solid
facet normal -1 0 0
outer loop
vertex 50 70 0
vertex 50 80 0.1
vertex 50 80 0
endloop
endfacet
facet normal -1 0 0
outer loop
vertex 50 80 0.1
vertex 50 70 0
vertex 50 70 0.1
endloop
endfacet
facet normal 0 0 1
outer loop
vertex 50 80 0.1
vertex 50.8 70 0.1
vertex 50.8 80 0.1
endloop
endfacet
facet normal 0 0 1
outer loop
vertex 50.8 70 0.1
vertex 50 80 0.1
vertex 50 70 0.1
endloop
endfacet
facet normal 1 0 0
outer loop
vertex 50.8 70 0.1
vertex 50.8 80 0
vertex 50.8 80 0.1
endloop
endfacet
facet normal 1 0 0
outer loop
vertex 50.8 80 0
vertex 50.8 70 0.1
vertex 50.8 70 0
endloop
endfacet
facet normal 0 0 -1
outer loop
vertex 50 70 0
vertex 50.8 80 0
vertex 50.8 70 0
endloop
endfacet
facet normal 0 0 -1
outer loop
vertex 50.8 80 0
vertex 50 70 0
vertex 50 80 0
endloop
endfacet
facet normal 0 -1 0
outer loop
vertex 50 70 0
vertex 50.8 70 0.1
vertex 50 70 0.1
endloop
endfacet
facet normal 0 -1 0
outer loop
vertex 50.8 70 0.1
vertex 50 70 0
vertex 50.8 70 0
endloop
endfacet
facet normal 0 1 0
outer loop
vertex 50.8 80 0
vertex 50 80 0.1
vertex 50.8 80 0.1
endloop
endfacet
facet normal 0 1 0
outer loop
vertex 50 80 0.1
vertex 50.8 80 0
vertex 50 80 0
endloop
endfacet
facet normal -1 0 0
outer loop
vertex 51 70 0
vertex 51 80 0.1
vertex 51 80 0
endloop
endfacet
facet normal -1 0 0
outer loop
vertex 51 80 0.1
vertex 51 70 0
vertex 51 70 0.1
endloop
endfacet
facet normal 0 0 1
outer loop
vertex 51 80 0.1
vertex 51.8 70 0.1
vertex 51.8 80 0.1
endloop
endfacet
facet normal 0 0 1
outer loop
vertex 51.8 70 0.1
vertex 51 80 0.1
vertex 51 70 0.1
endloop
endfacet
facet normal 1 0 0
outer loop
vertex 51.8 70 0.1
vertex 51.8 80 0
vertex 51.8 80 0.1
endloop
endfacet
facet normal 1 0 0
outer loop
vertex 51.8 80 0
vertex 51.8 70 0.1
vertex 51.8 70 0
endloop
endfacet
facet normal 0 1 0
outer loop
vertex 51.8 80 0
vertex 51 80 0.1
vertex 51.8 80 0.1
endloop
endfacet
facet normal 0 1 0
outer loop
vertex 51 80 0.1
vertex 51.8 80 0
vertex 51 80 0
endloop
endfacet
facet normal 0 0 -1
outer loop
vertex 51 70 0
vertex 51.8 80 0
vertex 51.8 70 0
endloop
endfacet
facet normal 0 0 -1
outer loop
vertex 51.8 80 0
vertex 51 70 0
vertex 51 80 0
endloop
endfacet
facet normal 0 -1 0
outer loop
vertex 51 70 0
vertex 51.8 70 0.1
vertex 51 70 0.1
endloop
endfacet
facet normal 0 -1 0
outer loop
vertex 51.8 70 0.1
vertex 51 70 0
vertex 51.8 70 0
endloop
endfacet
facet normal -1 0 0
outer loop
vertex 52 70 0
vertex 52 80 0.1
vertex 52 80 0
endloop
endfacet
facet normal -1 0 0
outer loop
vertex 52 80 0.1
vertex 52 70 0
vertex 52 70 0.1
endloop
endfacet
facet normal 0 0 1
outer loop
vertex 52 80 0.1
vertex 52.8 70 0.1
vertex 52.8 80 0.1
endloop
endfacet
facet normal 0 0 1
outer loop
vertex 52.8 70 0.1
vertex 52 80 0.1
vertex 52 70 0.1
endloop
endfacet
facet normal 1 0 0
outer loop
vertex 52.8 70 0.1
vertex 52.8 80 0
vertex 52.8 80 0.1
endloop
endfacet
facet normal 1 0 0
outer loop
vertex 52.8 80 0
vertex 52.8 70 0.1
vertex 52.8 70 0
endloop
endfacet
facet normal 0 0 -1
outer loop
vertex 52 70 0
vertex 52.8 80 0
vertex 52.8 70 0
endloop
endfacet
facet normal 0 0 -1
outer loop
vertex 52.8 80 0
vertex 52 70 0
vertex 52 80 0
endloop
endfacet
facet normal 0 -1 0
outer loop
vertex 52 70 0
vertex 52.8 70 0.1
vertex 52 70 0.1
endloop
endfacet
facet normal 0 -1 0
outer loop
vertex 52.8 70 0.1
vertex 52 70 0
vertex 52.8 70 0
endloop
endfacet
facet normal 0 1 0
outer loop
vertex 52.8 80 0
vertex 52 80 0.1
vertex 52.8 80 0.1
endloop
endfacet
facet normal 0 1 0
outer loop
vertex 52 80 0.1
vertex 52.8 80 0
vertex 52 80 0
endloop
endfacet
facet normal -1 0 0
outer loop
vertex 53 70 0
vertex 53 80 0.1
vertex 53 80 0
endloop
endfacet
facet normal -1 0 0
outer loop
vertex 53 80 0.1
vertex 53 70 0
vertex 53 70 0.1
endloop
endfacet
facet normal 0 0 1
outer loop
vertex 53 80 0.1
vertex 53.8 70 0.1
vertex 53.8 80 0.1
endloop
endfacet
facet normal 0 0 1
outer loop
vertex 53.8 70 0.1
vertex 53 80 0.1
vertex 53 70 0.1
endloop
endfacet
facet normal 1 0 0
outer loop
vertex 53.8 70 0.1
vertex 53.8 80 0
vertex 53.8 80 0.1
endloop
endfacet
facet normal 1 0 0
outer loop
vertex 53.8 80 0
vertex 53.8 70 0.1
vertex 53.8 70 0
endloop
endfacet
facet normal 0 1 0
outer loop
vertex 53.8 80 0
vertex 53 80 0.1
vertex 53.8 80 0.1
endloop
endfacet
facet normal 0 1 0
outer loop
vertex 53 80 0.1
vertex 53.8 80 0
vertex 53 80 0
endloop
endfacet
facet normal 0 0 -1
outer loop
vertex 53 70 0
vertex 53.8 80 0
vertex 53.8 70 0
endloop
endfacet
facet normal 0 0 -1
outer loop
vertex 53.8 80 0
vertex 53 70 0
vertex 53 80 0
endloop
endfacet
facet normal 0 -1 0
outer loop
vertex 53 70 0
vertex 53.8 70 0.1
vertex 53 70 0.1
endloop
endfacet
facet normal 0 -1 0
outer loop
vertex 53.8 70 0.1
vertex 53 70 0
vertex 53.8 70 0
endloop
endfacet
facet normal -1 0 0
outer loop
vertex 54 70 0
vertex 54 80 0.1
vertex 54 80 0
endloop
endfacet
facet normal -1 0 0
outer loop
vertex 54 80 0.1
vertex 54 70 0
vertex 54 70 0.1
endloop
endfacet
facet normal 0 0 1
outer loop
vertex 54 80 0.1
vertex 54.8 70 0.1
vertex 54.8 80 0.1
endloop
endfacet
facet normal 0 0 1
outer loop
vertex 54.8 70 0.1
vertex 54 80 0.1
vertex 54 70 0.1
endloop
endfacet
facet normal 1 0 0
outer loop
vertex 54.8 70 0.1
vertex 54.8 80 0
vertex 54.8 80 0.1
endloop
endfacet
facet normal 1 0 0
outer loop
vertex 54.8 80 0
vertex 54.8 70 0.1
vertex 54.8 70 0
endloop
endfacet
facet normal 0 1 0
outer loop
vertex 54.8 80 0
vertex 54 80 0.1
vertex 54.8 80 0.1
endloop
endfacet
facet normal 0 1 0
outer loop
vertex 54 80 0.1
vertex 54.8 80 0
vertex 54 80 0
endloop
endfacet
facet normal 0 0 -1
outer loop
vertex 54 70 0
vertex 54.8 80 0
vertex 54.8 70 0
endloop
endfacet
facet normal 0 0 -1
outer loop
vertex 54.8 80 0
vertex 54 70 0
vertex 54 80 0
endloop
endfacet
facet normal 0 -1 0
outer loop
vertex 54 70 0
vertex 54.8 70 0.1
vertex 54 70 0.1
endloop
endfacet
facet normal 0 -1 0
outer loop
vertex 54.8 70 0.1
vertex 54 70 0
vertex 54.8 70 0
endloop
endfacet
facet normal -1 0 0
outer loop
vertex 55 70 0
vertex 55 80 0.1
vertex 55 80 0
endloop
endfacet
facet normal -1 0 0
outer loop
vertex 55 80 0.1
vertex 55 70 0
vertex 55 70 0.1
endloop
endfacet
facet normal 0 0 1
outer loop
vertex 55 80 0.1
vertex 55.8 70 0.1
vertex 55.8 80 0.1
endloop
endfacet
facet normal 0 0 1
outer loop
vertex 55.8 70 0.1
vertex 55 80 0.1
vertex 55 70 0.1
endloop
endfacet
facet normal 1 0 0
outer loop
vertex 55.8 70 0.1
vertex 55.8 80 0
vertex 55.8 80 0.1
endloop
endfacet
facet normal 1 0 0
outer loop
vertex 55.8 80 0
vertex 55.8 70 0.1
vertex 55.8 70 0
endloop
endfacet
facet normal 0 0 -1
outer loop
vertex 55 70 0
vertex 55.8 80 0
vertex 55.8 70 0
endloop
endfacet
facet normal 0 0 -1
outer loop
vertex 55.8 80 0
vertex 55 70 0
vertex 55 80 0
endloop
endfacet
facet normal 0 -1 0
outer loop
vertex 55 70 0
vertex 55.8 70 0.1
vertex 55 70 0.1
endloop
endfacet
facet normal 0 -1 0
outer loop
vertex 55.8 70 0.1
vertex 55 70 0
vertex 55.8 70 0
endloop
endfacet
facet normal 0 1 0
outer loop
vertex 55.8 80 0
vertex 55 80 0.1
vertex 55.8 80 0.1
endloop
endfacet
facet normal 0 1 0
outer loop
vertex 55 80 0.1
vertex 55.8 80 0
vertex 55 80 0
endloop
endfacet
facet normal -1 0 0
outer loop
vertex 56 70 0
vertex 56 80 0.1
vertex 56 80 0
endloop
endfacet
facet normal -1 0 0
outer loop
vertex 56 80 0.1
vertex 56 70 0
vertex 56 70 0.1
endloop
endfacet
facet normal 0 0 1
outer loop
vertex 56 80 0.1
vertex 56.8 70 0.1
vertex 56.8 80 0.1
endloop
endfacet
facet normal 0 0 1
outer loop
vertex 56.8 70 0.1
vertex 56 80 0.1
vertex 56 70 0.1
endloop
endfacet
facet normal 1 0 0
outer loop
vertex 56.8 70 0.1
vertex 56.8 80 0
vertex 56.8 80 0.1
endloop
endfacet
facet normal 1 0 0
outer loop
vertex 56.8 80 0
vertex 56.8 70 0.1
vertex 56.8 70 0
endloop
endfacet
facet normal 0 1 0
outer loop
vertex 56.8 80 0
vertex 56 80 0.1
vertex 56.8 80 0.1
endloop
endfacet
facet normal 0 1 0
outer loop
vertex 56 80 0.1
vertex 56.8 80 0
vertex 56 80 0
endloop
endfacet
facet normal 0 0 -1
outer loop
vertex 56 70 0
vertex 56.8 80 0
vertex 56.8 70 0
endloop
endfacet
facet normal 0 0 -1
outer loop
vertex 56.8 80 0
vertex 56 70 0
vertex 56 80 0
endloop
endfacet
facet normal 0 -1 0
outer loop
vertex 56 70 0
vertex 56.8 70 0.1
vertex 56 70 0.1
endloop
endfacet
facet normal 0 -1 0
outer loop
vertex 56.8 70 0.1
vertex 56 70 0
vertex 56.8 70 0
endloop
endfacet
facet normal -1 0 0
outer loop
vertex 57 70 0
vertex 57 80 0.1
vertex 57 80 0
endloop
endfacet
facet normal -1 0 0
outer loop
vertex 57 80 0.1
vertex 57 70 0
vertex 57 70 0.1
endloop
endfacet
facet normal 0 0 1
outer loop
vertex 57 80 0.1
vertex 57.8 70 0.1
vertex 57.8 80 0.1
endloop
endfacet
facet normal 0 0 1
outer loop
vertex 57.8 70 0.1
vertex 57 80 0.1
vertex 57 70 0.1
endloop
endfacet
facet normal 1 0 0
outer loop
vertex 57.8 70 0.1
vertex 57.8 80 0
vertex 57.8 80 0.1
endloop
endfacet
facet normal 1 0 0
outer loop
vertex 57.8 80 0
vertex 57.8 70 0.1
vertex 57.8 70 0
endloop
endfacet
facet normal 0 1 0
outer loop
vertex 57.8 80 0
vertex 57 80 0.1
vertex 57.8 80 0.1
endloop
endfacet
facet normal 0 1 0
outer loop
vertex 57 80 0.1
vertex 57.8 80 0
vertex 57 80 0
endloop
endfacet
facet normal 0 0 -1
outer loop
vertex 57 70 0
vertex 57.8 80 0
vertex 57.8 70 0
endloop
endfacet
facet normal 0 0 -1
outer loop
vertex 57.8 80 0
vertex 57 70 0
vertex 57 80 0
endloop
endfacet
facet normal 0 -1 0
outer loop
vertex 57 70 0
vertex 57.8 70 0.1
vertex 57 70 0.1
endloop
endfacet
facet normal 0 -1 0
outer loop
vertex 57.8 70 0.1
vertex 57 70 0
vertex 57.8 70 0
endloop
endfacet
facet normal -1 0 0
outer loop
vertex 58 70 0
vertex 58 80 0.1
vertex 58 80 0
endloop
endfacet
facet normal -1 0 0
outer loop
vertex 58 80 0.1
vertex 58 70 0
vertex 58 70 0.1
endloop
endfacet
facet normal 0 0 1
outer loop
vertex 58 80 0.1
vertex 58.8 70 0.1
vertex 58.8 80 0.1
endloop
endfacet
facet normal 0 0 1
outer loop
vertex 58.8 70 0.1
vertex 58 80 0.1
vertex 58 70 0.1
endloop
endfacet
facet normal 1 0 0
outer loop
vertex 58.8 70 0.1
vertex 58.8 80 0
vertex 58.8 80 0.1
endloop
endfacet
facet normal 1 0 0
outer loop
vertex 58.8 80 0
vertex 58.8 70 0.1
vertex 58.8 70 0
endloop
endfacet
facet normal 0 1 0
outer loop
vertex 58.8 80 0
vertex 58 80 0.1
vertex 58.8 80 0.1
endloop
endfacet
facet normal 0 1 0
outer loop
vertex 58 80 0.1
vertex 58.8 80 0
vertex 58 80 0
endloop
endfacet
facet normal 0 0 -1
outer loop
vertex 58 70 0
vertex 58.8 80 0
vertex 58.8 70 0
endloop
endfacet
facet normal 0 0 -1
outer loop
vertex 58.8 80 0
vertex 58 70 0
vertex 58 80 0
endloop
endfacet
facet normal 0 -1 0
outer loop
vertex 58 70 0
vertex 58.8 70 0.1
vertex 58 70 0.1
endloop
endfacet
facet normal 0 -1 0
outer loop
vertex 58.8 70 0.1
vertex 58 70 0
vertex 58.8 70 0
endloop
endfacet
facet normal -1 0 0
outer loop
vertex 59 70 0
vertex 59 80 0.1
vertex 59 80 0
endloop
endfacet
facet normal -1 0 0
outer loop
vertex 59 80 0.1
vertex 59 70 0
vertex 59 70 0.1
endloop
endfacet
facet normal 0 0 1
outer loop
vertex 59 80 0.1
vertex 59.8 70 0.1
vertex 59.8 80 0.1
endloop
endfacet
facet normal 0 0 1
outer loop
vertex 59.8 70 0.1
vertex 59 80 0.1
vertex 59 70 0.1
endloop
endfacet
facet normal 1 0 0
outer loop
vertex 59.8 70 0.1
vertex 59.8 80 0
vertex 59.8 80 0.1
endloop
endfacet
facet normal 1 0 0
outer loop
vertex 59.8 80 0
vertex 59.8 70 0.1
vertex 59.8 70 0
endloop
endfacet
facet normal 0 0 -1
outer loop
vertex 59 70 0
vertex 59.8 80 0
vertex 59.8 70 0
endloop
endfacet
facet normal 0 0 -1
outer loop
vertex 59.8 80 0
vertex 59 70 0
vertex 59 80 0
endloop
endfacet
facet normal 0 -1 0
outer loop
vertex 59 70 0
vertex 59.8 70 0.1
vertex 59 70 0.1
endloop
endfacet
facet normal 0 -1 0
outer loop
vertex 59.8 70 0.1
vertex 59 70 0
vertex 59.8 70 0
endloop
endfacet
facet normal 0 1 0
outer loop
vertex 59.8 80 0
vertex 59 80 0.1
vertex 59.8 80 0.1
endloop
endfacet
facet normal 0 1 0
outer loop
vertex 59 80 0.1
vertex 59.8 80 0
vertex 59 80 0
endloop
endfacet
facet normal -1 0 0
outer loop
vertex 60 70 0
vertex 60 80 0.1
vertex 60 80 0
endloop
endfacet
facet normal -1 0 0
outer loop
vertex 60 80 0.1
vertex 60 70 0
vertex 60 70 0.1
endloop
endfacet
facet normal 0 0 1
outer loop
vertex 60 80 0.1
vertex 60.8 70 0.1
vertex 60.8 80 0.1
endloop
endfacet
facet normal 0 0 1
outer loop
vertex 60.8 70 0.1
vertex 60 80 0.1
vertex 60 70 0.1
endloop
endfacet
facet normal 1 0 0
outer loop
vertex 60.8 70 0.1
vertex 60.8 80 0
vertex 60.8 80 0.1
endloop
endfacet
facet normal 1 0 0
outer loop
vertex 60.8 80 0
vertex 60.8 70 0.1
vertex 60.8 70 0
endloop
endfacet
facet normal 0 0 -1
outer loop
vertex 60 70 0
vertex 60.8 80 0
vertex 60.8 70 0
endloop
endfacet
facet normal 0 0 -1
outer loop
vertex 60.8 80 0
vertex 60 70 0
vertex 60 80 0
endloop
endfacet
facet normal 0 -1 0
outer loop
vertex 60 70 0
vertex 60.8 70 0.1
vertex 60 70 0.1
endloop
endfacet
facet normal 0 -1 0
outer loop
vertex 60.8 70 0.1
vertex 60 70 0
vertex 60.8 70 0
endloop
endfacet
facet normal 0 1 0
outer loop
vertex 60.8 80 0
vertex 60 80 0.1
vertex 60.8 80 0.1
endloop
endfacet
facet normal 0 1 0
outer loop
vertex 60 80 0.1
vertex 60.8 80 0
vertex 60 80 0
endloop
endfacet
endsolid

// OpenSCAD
translate([10+40,10+60,0])
        for (i = [0 : 10]){
            translate([i,0,0])
                cube(size = [0.8,10,0.1]);
    }
